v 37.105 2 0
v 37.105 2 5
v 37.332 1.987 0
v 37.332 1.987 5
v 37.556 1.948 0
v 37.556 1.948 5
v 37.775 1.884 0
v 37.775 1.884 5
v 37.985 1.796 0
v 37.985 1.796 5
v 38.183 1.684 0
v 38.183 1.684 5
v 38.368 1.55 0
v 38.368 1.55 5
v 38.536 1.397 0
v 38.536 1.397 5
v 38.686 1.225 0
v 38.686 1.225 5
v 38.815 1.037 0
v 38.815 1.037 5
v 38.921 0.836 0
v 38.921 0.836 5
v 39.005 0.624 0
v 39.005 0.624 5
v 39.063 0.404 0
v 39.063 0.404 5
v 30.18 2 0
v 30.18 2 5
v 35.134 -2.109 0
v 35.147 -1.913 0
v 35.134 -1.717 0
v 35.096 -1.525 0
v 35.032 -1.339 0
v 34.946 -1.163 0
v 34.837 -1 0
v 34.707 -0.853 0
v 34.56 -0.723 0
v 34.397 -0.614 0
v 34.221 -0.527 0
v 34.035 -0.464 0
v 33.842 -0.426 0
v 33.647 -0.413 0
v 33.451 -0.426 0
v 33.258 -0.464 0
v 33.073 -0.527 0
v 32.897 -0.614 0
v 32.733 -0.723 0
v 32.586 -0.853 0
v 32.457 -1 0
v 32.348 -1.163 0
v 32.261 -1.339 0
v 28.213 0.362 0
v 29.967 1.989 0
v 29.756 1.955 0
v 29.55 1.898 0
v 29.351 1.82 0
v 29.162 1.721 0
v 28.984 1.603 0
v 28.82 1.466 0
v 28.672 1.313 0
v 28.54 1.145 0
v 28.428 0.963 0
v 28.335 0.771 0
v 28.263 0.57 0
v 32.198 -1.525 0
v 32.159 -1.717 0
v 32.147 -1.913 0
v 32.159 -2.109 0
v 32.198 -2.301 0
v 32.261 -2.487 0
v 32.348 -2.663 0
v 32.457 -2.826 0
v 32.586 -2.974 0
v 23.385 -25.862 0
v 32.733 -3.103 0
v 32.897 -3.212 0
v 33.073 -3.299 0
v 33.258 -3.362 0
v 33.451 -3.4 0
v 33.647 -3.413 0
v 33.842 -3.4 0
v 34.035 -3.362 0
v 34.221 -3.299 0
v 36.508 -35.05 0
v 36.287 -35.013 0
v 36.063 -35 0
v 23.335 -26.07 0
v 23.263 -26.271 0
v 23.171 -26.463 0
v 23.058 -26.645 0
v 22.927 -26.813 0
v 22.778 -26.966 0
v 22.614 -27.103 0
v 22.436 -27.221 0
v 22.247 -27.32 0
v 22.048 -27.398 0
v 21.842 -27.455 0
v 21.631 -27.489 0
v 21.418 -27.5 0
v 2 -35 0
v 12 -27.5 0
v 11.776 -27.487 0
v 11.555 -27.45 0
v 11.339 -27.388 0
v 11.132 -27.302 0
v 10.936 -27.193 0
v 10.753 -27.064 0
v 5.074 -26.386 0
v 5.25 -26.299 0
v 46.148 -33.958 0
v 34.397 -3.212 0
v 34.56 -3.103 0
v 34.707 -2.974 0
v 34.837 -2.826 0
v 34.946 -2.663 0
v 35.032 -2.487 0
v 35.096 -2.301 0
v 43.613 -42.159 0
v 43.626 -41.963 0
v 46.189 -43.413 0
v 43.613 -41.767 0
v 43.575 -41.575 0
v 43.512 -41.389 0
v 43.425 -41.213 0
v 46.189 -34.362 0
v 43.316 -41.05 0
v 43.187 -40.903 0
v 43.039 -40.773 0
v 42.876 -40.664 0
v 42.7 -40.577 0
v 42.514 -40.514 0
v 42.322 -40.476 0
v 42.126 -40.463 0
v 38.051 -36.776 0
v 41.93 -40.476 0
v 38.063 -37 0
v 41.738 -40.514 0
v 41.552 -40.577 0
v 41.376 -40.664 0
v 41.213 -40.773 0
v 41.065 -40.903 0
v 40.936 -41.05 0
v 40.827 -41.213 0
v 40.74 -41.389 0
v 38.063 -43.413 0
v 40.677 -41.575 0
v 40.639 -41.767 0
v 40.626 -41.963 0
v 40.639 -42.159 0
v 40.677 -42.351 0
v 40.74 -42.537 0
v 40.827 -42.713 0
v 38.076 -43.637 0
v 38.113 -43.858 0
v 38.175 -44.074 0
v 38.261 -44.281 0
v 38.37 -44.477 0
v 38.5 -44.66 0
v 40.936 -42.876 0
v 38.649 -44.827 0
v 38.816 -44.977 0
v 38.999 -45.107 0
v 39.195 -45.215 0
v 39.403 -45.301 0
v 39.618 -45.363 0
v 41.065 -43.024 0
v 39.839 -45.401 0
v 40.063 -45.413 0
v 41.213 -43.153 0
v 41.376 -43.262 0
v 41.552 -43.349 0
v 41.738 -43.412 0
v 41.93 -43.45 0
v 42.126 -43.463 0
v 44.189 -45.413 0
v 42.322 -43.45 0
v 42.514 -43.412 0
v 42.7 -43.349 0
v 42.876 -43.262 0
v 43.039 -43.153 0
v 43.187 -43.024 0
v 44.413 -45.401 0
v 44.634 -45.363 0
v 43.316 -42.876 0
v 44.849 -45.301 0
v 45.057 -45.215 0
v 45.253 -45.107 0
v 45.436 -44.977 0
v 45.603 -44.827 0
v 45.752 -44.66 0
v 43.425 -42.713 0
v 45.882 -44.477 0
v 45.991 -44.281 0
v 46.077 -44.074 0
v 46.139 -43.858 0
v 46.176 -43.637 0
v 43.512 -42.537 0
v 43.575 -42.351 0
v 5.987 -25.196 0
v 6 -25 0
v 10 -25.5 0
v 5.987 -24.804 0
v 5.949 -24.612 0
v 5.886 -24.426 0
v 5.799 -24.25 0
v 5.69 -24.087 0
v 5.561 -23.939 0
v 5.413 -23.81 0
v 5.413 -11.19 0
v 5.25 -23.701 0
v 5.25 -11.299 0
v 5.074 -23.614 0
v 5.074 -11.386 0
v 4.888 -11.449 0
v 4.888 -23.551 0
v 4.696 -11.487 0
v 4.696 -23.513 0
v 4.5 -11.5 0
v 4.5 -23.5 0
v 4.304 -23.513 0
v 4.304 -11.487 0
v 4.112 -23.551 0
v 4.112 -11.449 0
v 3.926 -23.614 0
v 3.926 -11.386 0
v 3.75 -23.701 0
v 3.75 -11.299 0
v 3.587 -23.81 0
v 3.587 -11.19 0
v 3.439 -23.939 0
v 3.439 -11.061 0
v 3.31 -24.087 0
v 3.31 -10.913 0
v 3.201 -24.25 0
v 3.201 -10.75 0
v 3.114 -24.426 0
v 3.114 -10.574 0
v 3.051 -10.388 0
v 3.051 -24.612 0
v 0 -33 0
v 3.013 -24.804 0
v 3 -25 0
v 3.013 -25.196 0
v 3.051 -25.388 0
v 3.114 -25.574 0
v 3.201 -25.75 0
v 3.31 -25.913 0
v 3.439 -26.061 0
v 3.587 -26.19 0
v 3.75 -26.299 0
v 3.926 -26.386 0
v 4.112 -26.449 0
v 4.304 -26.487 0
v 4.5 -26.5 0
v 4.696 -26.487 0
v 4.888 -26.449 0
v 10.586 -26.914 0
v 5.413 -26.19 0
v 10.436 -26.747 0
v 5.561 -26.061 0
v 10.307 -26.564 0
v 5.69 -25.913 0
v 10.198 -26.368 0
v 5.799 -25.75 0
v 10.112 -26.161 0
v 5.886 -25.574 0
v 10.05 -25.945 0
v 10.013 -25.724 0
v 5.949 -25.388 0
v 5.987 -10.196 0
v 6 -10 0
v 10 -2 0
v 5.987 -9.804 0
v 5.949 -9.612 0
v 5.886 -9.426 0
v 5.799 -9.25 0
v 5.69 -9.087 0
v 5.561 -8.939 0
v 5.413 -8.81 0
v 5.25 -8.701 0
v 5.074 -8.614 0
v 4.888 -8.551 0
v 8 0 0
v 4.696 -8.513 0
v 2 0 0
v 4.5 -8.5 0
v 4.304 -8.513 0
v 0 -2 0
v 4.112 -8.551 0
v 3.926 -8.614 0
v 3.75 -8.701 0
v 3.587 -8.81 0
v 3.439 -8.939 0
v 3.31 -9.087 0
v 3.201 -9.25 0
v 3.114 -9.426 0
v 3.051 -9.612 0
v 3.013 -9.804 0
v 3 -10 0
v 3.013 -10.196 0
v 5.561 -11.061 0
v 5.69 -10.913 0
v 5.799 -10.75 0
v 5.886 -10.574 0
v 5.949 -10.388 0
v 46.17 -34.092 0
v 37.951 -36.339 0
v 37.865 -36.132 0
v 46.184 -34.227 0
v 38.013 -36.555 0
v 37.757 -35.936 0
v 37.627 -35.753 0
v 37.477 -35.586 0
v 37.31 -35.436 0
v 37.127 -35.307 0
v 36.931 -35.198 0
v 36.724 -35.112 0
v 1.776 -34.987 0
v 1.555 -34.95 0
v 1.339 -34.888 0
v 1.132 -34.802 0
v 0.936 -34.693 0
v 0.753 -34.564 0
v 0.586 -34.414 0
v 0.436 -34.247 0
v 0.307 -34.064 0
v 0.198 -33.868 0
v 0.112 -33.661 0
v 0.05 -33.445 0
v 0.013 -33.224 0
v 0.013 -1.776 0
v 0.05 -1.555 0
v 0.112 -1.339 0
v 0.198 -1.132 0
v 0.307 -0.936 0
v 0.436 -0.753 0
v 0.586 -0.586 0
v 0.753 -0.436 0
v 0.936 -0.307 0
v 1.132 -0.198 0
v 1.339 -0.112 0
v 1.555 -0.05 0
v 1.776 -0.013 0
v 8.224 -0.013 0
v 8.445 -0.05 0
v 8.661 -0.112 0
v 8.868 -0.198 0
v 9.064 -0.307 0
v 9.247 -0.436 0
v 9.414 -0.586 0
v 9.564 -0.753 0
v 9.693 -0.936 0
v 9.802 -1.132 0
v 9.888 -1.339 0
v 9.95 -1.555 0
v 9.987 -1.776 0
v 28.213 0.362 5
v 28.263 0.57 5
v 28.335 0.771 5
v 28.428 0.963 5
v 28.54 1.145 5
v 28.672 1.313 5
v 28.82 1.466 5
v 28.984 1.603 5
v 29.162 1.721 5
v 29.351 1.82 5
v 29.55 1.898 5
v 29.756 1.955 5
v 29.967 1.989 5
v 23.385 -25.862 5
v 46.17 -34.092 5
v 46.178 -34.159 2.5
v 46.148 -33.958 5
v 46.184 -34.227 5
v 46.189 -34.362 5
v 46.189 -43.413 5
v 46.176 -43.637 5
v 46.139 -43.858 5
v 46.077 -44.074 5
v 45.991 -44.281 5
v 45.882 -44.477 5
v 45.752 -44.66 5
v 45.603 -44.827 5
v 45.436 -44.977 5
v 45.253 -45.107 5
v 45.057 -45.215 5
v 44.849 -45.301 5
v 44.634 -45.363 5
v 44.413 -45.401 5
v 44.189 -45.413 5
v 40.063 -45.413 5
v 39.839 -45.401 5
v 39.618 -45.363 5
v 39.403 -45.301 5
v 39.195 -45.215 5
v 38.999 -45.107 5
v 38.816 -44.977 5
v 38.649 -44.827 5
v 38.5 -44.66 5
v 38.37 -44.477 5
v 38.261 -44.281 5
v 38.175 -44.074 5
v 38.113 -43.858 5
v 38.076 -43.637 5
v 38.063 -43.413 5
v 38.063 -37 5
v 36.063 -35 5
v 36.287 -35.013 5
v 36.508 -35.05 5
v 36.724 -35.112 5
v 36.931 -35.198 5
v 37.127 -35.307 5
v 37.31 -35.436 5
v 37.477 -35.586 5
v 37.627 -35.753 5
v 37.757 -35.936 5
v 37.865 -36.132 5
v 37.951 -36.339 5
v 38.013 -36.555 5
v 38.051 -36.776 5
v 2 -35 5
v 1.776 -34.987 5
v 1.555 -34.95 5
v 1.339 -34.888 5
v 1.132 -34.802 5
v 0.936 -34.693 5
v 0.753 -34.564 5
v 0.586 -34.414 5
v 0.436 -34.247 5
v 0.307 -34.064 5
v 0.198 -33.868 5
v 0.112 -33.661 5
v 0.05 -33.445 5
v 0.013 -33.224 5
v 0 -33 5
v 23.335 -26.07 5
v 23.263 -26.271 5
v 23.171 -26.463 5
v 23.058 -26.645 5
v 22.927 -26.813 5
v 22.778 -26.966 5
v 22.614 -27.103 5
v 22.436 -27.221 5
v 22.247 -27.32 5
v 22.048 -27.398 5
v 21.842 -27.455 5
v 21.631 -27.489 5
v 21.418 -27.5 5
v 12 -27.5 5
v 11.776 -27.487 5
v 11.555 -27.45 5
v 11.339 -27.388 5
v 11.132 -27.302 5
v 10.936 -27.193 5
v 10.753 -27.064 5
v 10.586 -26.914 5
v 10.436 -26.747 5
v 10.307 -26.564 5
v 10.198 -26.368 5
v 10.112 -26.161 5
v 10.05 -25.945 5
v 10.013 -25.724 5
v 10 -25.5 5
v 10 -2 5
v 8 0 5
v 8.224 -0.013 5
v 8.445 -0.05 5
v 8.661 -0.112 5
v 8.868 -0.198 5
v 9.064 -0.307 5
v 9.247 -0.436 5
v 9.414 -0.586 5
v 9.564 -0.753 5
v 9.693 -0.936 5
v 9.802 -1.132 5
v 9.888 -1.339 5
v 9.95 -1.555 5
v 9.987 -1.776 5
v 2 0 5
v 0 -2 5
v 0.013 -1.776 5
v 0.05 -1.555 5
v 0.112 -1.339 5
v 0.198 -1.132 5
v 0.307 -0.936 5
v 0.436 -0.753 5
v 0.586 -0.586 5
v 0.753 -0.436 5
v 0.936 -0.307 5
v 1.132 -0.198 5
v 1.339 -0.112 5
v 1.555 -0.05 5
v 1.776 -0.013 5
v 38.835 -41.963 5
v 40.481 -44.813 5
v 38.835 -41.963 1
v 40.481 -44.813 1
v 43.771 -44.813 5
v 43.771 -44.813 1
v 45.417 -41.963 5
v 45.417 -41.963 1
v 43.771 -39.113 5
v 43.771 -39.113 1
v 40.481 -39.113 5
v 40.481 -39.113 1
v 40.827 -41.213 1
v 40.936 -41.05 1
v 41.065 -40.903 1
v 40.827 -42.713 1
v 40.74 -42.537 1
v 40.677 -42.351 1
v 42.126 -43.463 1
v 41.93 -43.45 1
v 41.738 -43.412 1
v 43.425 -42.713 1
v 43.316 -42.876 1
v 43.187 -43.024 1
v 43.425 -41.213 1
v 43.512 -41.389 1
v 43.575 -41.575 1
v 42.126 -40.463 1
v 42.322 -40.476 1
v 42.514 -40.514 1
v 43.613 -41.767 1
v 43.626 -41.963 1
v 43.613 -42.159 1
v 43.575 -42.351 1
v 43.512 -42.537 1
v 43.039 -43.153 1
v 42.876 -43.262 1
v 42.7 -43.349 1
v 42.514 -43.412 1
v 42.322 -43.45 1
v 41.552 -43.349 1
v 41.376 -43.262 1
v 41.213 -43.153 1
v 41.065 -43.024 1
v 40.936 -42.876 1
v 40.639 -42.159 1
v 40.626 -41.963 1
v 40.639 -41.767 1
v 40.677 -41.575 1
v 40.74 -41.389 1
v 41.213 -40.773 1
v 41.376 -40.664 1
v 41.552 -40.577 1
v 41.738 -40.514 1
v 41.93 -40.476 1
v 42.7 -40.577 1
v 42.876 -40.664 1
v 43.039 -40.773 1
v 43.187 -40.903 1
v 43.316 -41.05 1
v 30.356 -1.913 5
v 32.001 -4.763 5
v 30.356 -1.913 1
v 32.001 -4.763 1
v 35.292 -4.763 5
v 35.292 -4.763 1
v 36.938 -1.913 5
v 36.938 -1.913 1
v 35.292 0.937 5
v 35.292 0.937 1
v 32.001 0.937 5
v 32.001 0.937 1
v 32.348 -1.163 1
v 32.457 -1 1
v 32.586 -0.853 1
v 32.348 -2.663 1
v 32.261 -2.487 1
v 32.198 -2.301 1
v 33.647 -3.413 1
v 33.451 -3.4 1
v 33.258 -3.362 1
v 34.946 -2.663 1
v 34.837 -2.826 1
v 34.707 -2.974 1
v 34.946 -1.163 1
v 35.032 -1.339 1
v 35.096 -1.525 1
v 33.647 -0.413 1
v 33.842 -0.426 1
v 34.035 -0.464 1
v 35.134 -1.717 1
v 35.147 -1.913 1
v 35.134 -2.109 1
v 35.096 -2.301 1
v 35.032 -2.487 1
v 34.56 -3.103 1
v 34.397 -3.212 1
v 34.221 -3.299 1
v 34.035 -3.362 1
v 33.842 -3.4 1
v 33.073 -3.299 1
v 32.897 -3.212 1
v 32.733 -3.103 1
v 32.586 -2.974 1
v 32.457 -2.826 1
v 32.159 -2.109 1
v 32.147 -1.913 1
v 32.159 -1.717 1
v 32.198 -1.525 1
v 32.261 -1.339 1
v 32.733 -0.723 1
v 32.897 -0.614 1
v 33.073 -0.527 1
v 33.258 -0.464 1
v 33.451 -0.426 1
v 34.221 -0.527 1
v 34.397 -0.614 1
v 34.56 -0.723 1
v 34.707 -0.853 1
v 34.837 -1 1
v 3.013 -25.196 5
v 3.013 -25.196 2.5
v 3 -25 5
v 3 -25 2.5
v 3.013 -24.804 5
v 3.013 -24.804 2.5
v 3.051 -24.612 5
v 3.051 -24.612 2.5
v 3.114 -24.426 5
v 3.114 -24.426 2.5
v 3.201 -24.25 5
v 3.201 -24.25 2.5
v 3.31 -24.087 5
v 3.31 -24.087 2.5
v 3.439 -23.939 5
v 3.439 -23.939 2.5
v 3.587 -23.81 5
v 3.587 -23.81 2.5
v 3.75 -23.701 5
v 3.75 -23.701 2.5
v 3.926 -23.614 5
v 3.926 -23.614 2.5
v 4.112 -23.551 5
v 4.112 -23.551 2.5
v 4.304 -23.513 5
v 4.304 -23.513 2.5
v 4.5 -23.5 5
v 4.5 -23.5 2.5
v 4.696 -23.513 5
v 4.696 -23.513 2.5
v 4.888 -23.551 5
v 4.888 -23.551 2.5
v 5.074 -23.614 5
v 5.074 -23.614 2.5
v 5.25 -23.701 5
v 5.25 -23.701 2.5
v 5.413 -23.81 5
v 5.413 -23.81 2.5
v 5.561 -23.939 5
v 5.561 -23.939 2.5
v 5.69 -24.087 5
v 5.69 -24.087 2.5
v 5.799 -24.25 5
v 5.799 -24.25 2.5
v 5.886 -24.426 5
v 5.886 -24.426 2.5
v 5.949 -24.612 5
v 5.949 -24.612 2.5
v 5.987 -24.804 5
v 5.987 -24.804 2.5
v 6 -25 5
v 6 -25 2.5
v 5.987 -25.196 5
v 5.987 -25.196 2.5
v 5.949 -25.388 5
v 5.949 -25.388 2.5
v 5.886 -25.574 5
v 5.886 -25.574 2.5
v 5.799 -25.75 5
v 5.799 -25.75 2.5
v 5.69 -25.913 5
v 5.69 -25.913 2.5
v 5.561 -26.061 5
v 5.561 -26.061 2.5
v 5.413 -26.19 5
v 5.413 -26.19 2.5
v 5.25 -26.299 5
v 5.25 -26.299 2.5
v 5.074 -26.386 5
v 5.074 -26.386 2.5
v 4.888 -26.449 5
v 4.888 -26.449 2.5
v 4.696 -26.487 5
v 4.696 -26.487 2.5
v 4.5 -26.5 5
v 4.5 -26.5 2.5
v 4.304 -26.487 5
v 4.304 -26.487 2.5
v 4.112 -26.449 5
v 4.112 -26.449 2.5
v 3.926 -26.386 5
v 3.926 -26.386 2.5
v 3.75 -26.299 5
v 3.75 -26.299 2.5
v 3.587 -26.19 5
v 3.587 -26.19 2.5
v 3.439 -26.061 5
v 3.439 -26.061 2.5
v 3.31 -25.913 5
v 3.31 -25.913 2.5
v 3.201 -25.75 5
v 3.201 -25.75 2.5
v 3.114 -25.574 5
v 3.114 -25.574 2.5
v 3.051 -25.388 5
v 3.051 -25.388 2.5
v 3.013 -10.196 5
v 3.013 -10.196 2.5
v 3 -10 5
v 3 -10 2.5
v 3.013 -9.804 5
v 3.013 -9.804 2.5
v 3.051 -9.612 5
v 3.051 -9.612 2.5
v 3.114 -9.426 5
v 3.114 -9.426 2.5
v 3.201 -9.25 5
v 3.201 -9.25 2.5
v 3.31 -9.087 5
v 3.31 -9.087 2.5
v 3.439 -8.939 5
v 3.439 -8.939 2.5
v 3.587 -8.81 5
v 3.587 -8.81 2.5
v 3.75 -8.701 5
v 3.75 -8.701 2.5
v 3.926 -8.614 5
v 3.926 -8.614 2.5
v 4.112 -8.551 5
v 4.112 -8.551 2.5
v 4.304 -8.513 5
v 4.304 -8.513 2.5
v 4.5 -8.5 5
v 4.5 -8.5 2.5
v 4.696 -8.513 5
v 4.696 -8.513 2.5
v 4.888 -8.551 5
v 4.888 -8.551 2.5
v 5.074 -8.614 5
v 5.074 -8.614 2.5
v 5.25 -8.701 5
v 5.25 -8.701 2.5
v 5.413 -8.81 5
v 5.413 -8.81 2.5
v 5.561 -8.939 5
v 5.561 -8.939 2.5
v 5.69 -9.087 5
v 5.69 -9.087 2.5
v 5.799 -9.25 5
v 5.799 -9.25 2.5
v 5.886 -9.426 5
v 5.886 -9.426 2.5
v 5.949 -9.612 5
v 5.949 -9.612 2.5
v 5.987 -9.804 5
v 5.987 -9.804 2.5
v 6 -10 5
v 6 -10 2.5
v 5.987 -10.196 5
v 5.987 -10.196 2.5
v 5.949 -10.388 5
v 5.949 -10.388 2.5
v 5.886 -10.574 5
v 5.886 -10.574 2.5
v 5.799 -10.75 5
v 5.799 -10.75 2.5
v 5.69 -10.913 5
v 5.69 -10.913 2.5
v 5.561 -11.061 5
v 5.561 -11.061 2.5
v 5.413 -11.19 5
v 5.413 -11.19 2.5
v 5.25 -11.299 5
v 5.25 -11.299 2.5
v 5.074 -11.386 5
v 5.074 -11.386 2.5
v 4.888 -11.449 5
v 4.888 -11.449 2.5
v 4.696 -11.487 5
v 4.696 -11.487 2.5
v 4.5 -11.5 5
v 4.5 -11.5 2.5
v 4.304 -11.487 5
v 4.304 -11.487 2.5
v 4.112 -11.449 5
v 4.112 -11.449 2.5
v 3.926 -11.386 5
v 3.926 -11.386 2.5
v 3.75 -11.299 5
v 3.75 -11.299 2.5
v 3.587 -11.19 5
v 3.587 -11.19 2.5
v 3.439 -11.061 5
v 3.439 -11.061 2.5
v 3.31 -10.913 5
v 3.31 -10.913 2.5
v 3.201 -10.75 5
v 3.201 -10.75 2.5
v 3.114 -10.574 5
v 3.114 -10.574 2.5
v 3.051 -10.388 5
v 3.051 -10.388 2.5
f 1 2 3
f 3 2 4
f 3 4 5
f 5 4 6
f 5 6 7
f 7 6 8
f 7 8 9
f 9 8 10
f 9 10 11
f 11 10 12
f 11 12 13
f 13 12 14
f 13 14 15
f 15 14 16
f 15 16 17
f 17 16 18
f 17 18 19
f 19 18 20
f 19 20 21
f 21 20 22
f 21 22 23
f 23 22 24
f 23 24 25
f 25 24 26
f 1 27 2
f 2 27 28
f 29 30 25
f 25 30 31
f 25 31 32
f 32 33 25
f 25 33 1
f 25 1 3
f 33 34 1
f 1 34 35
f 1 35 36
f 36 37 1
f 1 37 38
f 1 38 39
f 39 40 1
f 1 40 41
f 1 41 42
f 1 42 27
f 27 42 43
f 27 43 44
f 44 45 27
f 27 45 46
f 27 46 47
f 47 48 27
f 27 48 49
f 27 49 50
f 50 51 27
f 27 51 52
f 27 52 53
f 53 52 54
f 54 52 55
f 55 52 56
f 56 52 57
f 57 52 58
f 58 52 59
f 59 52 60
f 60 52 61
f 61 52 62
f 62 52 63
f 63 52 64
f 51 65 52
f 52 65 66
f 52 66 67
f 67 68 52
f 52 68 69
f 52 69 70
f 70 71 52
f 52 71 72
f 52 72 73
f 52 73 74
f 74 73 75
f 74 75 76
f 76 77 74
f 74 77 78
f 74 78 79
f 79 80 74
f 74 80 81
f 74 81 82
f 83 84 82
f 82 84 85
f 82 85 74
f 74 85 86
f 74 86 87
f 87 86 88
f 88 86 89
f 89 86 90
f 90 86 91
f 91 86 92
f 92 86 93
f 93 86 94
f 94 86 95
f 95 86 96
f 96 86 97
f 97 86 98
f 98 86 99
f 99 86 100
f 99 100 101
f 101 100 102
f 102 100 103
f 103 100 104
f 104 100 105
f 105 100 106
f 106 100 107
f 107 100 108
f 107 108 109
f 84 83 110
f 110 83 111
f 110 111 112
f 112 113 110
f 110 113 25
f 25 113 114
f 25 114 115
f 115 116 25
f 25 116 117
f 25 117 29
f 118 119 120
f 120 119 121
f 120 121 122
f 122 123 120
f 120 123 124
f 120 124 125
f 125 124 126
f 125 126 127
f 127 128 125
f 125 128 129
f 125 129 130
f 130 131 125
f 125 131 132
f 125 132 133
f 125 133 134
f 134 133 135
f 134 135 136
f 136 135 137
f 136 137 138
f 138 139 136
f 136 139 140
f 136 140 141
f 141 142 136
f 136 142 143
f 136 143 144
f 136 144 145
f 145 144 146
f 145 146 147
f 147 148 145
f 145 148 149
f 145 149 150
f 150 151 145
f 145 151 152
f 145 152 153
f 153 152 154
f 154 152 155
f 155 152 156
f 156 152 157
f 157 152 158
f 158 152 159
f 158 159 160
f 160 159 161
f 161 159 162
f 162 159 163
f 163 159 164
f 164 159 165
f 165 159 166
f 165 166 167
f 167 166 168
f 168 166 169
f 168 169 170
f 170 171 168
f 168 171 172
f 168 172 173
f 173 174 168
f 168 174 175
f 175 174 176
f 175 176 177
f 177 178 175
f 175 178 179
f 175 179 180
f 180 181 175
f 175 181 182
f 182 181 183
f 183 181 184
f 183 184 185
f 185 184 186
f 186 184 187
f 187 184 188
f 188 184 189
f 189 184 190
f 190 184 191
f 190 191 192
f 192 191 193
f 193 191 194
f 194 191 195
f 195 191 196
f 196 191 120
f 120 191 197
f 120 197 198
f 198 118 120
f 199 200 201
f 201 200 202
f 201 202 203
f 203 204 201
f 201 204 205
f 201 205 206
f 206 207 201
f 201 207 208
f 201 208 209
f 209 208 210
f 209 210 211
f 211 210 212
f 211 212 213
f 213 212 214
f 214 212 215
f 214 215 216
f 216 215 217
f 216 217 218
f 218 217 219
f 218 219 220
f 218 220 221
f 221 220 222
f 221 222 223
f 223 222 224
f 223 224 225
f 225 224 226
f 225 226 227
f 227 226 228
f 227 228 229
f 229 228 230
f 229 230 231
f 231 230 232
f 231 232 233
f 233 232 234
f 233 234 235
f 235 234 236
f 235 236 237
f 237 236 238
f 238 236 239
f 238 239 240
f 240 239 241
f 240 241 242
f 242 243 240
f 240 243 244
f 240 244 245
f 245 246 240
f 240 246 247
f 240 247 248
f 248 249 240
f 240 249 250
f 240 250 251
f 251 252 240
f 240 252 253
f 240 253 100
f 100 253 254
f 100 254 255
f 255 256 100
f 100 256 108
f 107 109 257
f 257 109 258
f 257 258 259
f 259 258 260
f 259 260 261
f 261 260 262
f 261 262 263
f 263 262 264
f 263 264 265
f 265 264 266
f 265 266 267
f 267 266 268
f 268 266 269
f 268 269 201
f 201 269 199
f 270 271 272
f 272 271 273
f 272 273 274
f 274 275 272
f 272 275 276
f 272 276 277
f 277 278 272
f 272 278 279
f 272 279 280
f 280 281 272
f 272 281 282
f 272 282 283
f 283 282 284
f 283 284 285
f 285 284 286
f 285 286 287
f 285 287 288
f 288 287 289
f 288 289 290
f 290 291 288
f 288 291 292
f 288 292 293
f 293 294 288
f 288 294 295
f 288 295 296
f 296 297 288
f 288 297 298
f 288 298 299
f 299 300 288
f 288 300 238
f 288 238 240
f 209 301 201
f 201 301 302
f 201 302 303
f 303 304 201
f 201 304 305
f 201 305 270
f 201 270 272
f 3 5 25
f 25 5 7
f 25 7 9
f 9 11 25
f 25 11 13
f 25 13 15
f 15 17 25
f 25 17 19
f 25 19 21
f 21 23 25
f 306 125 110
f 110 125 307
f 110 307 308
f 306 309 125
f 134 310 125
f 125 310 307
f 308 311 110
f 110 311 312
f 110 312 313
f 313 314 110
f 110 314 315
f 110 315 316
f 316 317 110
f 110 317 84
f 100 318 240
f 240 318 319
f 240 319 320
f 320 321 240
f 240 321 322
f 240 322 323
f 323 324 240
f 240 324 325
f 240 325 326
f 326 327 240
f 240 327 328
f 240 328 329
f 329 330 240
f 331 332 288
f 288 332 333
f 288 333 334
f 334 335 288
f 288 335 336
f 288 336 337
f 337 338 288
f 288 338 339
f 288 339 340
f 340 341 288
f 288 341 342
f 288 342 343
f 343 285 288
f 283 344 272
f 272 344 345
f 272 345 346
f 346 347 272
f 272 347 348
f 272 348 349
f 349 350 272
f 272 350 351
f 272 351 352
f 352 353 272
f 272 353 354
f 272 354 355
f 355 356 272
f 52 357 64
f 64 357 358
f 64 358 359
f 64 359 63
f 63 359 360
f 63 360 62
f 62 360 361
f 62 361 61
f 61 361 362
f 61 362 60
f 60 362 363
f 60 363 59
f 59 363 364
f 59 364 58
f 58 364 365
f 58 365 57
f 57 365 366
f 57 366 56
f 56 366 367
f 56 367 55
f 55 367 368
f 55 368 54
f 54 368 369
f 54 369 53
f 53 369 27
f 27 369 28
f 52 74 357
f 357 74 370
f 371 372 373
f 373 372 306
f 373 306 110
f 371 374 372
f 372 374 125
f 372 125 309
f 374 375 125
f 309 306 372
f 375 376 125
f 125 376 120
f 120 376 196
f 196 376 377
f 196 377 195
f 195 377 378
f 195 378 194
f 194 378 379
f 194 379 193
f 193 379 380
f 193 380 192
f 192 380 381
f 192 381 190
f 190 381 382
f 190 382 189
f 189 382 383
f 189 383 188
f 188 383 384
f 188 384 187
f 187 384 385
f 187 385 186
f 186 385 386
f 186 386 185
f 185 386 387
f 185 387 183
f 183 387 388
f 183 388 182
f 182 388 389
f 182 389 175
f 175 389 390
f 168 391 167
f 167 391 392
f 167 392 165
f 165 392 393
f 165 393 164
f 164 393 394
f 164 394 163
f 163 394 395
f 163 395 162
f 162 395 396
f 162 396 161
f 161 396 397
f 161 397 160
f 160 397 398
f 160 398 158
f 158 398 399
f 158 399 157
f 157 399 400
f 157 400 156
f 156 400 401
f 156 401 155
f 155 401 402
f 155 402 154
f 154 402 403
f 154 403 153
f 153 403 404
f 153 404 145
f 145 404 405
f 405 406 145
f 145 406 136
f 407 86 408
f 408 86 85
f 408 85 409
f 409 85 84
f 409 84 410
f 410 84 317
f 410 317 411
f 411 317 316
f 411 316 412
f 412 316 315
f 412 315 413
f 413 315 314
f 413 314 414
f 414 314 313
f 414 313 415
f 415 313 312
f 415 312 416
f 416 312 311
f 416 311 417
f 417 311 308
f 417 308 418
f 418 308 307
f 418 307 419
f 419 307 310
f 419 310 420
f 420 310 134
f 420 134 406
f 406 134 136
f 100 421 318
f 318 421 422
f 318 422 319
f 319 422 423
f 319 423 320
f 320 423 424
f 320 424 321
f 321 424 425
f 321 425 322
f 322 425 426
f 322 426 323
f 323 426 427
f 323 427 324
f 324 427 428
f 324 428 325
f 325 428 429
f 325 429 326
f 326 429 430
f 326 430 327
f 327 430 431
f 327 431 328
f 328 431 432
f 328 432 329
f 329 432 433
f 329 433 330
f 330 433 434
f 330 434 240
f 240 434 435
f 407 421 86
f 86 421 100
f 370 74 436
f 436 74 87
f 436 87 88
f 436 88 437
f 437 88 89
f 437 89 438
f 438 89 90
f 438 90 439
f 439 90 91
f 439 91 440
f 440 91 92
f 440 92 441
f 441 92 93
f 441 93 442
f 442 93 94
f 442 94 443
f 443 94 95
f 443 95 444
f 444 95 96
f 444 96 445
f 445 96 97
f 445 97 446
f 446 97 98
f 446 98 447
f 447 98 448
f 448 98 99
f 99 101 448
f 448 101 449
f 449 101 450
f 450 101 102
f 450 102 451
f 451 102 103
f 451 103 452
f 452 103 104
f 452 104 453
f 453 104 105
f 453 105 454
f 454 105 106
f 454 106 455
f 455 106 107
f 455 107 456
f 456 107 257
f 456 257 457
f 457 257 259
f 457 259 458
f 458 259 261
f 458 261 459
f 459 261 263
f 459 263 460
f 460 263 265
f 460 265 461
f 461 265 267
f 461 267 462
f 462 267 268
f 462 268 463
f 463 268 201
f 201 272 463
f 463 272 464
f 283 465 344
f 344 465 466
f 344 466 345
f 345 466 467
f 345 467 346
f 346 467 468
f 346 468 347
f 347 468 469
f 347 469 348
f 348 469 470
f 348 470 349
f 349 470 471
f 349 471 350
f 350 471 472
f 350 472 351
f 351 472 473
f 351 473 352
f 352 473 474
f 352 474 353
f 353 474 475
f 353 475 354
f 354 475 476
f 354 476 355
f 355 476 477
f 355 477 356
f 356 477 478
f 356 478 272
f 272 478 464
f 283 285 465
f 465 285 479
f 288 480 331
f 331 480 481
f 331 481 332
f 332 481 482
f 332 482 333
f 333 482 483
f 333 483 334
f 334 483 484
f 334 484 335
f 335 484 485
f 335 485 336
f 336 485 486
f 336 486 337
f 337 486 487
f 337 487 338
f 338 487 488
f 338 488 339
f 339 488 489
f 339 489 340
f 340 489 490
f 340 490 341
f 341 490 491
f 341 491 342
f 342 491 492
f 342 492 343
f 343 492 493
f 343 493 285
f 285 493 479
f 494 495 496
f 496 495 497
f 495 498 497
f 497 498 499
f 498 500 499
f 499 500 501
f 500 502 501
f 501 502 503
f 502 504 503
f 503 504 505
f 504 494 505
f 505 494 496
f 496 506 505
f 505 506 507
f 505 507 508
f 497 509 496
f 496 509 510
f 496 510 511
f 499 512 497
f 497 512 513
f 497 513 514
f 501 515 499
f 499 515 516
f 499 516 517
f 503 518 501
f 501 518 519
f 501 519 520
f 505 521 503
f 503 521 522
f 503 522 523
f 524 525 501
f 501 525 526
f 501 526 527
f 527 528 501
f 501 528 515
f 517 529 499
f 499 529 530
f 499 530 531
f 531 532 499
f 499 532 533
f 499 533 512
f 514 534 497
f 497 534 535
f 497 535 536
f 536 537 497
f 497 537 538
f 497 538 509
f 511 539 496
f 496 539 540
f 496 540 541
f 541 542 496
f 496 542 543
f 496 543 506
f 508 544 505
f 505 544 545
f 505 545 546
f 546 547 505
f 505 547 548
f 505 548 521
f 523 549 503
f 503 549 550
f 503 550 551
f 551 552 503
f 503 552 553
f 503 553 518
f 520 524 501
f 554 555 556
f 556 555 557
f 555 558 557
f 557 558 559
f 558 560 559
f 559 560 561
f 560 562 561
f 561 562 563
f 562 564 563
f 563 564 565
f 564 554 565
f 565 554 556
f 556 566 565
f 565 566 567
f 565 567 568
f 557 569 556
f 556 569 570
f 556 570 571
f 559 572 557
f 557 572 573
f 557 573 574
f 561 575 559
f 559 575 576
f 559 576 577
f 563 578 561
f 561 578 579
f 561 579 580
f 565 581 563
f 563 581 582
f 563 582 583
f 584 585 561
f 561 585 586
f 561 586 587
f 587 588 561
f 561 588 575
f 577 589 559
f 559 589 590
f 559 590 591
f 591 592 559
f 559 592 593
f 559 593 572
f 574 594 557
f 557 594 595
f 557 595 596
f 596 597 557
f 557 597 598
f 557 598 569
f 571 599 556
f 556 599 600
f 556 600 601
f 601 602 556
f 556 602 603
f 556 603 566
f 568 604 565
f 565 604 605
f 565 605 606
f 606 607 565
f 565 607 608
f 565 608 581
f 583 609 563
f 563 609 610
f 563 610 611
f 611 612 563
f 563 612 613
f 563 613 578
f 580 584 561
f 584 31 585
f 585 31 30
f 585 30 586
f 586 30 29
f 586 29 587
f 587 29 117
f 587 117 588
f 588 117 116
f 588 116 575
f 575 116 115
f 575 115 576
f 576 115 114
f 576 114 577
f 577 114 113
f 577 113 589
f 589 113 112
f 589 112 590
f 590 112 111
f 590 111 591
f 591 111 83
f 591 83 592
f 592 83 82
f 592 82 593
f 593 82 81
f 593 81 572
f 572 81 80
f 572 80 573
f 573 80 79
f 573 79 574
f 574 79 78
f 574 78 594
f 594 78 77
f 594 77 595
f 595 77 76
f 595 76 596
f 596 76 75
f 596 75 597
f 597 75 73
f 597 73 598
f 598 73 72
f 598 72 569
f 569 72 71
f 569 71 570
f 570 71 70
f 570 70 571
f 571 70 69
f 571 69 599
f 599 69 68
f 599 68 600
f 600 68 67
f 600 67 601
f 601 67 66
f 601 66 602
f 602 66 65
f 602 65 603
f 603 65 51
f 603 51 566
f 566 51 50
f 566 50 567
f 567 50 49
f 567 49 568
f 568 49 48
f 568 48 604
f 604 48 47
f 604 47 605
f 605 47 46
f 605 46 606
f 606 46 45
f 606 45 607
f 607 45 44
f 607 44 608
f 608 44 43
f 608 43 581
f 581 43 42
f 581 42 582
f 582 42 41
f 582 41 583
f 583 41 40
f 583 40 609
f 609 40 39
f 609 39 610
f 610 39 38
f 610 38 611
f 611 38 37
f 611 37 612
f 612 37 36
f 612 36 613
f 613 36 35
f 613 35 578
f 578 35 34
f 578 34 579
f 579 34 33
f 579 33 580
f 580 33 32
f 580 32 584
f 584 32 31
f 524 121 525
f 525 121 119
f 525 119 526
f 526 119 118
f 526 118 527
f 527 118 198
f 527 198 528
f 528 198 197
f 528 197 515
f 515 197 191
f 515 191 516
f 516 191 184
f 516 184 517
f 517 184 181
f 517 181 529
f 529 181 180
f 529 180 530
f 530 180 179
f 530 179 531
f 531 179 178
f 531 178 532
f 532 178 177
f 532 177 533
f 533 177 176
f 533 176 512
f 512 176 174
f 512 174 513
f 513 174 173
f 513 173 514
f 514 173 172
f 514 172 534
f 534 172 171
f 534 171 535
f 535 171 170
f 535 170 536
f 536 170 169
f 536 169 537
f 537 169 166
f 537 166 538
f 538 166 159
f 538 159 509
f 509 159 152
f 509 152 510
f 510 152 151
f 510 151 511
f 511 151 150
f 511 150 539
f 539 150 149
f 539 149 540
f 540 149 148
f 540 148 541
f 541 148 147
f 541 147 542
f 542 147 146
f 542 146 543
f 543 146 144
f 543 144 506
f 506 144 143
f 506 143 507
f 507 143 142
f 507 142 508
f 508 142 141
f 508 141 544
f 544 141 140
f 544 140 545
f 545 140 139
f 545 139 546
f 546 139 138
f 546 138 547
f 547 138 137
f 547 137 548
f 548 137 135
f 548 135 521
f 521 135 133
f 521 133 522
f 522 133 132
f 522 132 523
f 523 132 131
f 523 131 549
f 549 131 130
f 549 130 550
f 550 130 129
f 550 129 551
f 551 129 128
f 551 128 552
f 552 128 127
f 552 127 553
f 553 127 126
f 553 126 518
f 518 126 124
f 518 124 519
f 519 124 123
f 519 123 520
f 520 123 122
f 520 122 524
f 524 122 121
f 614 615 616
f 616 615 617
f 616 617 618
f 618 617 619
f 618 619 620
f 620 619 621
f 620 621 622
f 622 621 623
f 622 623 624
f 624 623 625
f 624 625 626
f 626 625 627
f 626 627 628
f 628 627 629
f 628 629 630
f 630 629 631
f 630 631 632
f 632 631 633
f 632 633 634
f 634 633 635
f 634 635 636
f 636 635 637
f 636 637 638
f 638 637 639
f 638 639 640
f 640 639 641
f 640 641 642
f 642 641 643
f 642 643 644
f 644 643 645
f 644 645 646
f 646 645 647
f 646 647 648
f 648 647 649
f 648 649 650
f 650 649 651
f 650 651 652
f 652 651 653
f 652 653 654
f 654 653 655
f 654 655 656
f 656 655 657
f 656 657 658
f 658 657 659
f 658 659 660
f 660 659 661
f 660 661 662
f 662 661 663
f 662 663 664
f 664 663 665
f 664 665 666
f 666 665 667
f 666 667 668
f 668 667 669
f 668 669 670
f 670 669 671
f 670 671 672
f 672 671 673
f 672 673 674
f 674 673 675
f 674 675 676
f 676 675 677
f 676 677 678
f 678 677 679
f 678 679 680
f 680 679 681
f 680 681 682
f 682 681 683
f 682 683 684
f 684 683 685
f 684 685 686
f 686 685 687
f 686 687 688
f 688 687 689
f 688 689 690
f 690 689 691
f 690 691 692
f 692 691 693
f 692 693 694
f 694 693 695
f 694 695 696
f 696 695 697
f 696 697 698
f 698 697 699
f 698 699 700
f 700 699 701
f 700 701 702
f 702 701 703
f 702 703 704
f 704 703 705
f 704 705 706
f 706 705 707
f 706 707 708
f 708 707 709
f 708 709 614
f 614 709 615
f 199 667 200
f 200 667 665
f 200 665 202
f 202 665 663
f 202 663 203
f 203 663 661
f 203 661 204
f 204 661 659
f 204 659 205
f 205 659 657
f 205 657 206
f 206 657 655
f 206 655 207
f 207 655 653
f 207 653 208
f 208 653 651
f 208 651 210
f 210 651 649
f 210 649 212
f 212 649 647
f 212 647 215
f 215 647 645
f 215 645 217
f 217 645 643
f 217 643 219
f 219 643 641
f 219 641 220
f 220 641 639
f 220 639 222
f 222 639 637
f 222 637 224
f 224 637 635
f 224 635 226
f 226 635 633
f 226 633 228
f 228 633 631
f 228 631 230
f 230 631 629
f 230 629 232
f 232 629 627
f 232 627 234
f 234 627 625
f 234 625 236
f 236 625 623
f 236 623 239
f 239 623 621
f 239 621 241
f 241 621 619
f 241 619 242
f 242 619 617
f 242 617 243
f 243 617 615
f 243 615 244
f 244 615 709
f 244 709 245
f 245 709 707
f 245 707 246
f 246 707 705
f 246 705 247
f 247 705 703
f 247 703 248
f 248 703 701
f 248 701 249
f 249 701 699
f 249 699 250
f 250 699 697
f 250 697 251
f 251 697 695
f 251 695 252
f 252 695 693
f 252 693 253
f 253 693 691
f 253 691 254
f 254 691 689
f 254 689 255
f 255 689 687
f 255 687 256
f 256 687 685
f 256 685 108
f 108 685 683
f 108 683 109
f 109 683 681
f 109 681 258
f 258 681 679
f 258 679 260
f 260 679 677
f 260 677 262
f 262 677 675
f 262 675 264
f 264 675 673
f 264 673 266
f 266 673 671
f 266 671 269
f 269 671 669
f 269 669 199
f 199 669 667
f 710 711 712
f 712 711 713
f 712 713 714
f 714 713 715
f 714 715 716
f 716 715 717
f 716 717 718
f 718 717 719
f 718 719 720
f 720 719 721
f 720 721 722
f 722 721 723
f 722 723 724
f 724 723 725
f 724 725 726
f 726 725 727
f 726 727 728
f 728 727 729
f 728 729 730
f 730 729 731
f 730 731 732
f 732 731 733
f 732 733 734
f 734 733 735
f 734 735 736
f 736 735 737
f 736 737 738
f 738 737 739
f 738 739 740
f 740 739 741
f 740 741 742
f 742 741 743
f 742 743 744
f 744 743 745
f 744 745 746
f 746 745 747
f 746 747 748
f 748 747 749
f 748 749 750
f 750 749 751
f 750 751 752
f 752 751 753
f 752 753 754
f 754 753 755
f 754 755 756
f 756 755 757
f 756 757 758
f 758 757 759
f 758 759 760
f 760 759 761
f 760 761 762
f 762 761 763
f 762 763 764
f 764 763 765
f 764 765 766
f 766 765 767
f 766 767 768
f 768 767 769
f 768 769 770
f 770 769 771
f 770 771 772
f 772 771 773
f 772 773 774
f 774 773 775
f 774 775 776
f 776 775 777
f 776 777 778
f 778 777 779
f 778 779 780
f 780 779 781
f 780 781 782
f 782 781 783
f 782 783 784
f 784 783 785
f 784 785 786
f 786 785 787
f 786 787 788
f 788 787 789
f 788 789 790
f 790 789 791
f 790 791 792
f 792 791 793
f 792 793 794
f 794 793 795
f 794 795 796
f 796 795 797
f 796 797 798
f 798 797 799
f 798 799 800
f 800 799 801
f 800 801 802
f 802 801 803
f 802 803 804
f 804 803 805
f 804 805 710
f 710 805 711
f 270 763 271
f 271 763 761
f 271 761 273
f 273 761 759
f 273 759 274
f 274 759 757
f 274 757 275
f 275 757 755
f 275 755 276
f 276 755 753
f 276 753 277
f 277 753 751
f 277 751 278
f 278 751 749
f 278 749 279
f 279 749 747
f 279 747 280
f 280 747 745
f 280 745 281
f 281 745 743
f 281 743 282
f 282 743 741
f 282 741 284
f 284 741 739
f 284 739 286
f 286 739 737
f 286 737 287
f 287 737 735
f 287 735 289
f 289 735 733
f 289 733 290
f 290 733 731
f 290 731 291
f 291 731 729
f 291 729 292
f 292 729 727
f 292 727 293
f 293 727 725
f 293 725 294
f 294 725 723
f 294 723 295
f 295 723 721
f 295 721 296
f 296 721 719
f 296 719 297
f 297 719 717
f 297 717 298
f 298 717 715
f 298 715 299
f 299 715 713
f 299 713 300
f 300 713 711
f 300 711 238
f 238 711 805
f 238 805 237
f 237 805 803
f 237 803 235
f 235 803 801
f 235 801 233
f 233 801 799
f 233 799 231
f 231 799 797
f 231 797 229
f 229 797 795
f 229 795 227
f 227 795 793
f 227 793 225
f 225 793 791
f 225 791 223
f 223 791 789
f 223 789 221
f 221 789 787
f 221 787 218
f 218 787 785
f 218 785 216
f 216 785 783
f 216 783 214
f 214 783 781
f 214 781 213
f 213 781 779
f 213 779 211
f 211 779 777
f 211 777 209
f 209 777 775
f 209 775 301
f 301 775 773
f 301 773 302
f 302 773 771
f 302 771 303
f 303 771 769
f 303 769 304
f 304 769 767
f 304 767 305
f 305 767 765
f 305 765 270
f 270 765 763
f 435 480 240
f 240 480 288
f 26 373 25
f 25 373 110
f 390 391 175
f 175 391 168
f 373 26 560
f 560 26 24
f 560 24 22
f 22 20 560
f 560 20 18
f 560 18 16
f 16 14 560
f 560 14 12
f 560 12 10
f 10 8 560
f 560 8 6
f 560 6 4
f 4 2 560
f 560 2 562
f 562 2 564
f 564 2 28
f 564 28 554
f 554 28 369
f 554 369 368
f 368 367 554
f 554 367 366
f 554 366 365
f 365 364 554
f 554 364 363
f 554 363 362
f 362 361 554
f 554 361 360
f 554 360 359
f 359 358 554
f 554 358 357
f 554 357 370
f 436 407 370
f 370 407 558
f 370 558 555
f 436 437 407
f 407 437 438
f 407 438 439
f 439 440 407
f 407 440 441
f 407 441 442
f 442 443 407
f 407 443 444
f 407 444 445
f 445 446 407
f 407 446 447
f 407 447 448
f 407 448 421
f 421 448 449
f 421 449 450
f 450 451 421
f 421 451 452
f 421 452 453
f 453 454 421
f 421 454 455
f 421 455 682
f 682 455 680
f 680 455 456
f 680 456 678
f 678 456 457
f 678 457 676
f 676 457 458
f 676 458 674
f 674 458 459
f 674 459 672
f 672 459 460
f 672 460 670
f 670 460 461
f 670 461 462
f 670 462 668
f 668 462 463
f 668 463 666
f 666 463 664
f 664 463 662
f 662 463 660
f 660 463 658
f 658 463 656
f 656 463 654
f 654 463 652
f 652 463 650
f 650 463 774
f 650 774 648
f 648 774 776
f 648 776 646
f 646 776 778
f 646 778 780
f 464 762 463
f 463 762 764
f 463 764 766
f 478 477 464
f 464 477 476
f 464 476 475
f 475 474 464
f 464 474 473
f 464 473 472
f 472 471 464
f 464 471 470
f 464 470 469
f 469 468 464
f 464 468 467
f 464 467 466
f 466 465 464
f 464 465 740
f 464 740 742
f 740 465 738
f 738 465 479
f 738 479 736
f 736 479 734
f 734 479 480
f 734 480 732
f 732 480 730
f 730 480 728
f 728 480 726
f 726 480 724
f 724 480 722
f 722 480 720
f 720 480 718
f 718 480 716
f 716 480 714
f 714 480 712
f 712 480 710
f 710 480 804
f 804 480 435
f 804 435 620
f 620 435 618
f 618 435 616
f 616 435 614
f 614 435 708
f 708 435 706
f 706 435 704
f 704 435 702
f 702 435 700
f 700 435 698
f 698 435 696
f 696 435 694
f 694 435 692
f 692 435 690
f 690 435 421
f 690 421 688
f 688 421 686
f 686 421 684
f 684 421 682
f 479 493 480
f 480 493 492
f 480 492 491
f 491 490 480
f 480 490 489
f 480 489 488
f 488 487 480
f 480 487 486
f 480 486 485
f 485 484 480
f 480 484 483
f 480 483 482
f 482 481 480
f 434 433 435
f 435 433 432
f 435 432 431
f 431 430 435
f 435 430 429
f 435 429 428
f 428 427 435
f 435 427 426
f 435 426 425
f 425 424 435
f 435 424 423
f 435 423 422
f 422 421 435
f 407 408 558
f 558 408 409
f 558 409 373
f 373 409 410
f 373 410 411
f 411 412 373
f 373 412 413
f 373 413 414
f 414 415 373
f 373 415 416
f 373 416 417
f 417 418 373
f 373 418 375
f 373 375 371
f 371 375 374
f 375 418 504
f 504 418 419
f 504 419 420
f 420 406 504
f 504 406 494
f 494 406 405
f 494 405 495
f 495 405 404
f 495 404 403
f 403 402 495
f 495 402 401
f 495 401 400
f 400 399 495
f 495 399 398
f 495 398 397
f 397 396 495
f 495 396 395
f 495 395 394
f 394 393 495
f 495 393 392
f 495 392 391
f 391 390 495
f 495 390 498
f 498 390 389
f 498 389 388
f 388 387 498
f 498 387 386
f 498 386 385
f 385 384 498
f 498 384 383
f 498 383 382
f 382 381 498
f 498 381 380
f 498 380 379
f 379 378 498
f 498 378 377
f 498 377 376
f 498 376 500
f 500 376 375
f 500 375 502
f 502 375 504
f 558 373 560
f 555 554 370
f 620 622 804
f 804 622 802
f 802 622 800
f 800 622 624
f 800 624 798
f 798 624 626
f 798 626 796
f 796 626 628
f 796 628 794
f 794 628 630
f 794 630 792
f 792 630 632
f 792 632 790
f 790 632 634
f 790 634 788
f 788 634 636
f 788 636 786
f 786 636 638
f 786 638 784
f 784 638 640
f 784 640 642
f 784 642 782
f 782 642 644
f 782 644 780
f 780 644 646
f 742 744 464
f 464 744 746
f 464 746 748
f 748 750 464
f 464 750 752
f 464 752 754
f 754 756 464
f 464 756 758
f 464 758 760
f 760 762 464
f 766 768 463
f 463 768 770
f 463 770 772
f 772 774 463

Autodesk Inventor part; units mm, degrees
ref_plane "YZ Plane" through (0, 0, 0) normal (1, 0, 0) x (0, 1, 0)
ref_plane "XZ Plane" through (0, 0, 0) normal (0, 1, 0) x (-1, 0, 0)
ref_plane "XY Plane" through (0, 0, 0) normal (0, 0, 1) x (1, 0, 0)
sketch "Sketch1" plane through (0, 0, 0) normal (0, 0, 1) x (1, 0, 0)
  line L0 (0, 0) -> (10, 0)
  line L1 (10, 0) -> (10, -27.5)
  line L2 (10, -27.5) -> (23.0834, -27.5)
  line L3 (23.0834, -27.5) -> (28.1466, 0)
  line L4 (28.1466, 0) -> (39.1466, 0)
  line L5 (39.1466, 0) -> (46.1888, -34.158)
  line L6 (38.0632, -45.4132) -> (38.0632, -35)
  line L7 (38.0632, -35) -> (0, -35)
  line L8 (0, -35) -> (0, 0)
  line L9 (46.1888, -34.158) -> (46.1888, -45.4132)
  line L10 (46.1888, -45.4132) -> (38.0632, -45.4132)
  line L11 (28.1466, 0) -> (33.3359, 28.1848) construction
  line L12 (33.3359, 28.1848) -> (39.1466, 0) construction
  line L13 (28.1466, 0) -> (28.5149, 2)
  line L14 (38.7343, 2) -> (39.1466, 0)
  line L15 (38.7343, 2) -> (28.5149, 2)
  point P0 (4.5, -10)
  point P1 (4.5, -25)
  point P2 (42.126, -41.9632)
  point P3 (33.6466, -1.9132)
  point P4 (38.0632, -40.2066)
  point P5 (42.126, -45.4132)
  point P6 (33.6466, 0)
  dimension "d0" = 35
  dimension "d1" = 10
  dimension "d2" = 10
  dimension "d3" = 4.5
  dimension "d4" = 100.432
  dimension "d6" = 101.649
  dimension "d7" = 7.5
  dimension "d8" = 15
  dimension "d9" = 8.1256
  dimension "d10" = 38.0632
  dimension "d11" = 10.4132
  dimension "d12" = 3.45
  dimension "d13" = 1.9132
  dimension "d14" = 29.1466
  dimension "d15" = 28.1848
  dimension "d30" = 2
extrude "Extrusion1" add sketch "Sketch1" along normal blind 5
hole "Hole1" at (4.5, -10, 0) at (4.5, -25, 0) at (42.126, -41.9632, 0) at (33.6466, -1.9132, 0) direction (0, 0, 1) diameter 3 depth 20
sketch "Sketch2" plane through (0, 0, 5) normal (0, 0, 1) x (1, 0, 0)
  circle A0 centre (33.6466, -1.9132) radius 1.5 projected
  circle A1 centre (42.126, -41.9632) radius 1.5 projected
  circle A2 centre (4.5, -25) radius 1.5 projected
  circle A3 centre (4.5, -10) radius 1.5 projected
  line L0 (0, -35) -> (38.0632, -35) projected
  line L1 (38.0632, -35) -> (38.0632, -45.4132) projected
  line L2 (38.0632, -45.4132) -> (46.1888, -45.4132) projected
  line L3 (46.1888, -45.4132) -> (46.1888, -34.158) projected
  line L4 (23.0834, -27.5) -> (10, -27.5) projected
  line L5 (10, -27.5) -> (10, 0) projected
  line L6 (10, 0) -> (0, 0) projected
  line L7 (0, 0) -> (0, -35) projected
  line L8 (35.2921, 0.9368) -> (36.9375, -1.9132)
  line L9 (36.9375, -1.9132) -> (35.2921, -4.7632)
  line L10 (35.2921, -4.7632) -> (32.0012, -4.7632)
  line L11 (32.0012, -4.7632) -> (30.3557, -1.9132)
  line L12 (30.3557, -1.9132) -> (32.0012, 0.9368)
  line L13 (32.0012, 0.9368) -> (35.2921, 0.9368)
  line L14 (43.7715, -39.1132) -> (45.4169, -41.9632)
  line L15 (45.4169, -41.9632) -> (43.7715, -44.8132)
  line L16 (43.7715, -44.8132) -> (40.4806, -44.8132)
  line L17 (40.4806, -44.8132) -> (38.8351, -41.9632)
  line L18 (38.8351, -41.9632) -> (40.4806, -39.1132)
  line L19 (40.4806, -39.1132) -> (43.7715, -39.1132)
  line L20 (46.1888, -34.158) -> (38.7343, 2) projected
  line L21 (38.7343, 2) -> (28.5149, 2) projected
  line L22 (28.5149, 2) -> (23.0834, -27.5) projected
  dimension "d25" = 6.5818
  dimension "d26" = 6.5818
extrude "Extrusion2" cut sketch "Sketch2" against normal blind 4 contours L8 L9 L10 L11 L12 L13 | L14 L15 L16 L17 L18 L19
fillet "Fillet1" radius 2 11 edges at (0, 0, 2.5) (10, 0, 2.5) (10, -27.5, 2.5) (23.0834, -27.5, 2.5) (0, -35, 2.5) (38.0632, -35, 2.5) (38.0632, -45.4132, 2.5) (46.1888, -45.4132, 2.5) (46.1888, -34.158, 2.5) (28.5149, 2, 2.5) (38.7343, 2, 2.5)
properties part number "FanMountV2" material "ABS Plastic"
